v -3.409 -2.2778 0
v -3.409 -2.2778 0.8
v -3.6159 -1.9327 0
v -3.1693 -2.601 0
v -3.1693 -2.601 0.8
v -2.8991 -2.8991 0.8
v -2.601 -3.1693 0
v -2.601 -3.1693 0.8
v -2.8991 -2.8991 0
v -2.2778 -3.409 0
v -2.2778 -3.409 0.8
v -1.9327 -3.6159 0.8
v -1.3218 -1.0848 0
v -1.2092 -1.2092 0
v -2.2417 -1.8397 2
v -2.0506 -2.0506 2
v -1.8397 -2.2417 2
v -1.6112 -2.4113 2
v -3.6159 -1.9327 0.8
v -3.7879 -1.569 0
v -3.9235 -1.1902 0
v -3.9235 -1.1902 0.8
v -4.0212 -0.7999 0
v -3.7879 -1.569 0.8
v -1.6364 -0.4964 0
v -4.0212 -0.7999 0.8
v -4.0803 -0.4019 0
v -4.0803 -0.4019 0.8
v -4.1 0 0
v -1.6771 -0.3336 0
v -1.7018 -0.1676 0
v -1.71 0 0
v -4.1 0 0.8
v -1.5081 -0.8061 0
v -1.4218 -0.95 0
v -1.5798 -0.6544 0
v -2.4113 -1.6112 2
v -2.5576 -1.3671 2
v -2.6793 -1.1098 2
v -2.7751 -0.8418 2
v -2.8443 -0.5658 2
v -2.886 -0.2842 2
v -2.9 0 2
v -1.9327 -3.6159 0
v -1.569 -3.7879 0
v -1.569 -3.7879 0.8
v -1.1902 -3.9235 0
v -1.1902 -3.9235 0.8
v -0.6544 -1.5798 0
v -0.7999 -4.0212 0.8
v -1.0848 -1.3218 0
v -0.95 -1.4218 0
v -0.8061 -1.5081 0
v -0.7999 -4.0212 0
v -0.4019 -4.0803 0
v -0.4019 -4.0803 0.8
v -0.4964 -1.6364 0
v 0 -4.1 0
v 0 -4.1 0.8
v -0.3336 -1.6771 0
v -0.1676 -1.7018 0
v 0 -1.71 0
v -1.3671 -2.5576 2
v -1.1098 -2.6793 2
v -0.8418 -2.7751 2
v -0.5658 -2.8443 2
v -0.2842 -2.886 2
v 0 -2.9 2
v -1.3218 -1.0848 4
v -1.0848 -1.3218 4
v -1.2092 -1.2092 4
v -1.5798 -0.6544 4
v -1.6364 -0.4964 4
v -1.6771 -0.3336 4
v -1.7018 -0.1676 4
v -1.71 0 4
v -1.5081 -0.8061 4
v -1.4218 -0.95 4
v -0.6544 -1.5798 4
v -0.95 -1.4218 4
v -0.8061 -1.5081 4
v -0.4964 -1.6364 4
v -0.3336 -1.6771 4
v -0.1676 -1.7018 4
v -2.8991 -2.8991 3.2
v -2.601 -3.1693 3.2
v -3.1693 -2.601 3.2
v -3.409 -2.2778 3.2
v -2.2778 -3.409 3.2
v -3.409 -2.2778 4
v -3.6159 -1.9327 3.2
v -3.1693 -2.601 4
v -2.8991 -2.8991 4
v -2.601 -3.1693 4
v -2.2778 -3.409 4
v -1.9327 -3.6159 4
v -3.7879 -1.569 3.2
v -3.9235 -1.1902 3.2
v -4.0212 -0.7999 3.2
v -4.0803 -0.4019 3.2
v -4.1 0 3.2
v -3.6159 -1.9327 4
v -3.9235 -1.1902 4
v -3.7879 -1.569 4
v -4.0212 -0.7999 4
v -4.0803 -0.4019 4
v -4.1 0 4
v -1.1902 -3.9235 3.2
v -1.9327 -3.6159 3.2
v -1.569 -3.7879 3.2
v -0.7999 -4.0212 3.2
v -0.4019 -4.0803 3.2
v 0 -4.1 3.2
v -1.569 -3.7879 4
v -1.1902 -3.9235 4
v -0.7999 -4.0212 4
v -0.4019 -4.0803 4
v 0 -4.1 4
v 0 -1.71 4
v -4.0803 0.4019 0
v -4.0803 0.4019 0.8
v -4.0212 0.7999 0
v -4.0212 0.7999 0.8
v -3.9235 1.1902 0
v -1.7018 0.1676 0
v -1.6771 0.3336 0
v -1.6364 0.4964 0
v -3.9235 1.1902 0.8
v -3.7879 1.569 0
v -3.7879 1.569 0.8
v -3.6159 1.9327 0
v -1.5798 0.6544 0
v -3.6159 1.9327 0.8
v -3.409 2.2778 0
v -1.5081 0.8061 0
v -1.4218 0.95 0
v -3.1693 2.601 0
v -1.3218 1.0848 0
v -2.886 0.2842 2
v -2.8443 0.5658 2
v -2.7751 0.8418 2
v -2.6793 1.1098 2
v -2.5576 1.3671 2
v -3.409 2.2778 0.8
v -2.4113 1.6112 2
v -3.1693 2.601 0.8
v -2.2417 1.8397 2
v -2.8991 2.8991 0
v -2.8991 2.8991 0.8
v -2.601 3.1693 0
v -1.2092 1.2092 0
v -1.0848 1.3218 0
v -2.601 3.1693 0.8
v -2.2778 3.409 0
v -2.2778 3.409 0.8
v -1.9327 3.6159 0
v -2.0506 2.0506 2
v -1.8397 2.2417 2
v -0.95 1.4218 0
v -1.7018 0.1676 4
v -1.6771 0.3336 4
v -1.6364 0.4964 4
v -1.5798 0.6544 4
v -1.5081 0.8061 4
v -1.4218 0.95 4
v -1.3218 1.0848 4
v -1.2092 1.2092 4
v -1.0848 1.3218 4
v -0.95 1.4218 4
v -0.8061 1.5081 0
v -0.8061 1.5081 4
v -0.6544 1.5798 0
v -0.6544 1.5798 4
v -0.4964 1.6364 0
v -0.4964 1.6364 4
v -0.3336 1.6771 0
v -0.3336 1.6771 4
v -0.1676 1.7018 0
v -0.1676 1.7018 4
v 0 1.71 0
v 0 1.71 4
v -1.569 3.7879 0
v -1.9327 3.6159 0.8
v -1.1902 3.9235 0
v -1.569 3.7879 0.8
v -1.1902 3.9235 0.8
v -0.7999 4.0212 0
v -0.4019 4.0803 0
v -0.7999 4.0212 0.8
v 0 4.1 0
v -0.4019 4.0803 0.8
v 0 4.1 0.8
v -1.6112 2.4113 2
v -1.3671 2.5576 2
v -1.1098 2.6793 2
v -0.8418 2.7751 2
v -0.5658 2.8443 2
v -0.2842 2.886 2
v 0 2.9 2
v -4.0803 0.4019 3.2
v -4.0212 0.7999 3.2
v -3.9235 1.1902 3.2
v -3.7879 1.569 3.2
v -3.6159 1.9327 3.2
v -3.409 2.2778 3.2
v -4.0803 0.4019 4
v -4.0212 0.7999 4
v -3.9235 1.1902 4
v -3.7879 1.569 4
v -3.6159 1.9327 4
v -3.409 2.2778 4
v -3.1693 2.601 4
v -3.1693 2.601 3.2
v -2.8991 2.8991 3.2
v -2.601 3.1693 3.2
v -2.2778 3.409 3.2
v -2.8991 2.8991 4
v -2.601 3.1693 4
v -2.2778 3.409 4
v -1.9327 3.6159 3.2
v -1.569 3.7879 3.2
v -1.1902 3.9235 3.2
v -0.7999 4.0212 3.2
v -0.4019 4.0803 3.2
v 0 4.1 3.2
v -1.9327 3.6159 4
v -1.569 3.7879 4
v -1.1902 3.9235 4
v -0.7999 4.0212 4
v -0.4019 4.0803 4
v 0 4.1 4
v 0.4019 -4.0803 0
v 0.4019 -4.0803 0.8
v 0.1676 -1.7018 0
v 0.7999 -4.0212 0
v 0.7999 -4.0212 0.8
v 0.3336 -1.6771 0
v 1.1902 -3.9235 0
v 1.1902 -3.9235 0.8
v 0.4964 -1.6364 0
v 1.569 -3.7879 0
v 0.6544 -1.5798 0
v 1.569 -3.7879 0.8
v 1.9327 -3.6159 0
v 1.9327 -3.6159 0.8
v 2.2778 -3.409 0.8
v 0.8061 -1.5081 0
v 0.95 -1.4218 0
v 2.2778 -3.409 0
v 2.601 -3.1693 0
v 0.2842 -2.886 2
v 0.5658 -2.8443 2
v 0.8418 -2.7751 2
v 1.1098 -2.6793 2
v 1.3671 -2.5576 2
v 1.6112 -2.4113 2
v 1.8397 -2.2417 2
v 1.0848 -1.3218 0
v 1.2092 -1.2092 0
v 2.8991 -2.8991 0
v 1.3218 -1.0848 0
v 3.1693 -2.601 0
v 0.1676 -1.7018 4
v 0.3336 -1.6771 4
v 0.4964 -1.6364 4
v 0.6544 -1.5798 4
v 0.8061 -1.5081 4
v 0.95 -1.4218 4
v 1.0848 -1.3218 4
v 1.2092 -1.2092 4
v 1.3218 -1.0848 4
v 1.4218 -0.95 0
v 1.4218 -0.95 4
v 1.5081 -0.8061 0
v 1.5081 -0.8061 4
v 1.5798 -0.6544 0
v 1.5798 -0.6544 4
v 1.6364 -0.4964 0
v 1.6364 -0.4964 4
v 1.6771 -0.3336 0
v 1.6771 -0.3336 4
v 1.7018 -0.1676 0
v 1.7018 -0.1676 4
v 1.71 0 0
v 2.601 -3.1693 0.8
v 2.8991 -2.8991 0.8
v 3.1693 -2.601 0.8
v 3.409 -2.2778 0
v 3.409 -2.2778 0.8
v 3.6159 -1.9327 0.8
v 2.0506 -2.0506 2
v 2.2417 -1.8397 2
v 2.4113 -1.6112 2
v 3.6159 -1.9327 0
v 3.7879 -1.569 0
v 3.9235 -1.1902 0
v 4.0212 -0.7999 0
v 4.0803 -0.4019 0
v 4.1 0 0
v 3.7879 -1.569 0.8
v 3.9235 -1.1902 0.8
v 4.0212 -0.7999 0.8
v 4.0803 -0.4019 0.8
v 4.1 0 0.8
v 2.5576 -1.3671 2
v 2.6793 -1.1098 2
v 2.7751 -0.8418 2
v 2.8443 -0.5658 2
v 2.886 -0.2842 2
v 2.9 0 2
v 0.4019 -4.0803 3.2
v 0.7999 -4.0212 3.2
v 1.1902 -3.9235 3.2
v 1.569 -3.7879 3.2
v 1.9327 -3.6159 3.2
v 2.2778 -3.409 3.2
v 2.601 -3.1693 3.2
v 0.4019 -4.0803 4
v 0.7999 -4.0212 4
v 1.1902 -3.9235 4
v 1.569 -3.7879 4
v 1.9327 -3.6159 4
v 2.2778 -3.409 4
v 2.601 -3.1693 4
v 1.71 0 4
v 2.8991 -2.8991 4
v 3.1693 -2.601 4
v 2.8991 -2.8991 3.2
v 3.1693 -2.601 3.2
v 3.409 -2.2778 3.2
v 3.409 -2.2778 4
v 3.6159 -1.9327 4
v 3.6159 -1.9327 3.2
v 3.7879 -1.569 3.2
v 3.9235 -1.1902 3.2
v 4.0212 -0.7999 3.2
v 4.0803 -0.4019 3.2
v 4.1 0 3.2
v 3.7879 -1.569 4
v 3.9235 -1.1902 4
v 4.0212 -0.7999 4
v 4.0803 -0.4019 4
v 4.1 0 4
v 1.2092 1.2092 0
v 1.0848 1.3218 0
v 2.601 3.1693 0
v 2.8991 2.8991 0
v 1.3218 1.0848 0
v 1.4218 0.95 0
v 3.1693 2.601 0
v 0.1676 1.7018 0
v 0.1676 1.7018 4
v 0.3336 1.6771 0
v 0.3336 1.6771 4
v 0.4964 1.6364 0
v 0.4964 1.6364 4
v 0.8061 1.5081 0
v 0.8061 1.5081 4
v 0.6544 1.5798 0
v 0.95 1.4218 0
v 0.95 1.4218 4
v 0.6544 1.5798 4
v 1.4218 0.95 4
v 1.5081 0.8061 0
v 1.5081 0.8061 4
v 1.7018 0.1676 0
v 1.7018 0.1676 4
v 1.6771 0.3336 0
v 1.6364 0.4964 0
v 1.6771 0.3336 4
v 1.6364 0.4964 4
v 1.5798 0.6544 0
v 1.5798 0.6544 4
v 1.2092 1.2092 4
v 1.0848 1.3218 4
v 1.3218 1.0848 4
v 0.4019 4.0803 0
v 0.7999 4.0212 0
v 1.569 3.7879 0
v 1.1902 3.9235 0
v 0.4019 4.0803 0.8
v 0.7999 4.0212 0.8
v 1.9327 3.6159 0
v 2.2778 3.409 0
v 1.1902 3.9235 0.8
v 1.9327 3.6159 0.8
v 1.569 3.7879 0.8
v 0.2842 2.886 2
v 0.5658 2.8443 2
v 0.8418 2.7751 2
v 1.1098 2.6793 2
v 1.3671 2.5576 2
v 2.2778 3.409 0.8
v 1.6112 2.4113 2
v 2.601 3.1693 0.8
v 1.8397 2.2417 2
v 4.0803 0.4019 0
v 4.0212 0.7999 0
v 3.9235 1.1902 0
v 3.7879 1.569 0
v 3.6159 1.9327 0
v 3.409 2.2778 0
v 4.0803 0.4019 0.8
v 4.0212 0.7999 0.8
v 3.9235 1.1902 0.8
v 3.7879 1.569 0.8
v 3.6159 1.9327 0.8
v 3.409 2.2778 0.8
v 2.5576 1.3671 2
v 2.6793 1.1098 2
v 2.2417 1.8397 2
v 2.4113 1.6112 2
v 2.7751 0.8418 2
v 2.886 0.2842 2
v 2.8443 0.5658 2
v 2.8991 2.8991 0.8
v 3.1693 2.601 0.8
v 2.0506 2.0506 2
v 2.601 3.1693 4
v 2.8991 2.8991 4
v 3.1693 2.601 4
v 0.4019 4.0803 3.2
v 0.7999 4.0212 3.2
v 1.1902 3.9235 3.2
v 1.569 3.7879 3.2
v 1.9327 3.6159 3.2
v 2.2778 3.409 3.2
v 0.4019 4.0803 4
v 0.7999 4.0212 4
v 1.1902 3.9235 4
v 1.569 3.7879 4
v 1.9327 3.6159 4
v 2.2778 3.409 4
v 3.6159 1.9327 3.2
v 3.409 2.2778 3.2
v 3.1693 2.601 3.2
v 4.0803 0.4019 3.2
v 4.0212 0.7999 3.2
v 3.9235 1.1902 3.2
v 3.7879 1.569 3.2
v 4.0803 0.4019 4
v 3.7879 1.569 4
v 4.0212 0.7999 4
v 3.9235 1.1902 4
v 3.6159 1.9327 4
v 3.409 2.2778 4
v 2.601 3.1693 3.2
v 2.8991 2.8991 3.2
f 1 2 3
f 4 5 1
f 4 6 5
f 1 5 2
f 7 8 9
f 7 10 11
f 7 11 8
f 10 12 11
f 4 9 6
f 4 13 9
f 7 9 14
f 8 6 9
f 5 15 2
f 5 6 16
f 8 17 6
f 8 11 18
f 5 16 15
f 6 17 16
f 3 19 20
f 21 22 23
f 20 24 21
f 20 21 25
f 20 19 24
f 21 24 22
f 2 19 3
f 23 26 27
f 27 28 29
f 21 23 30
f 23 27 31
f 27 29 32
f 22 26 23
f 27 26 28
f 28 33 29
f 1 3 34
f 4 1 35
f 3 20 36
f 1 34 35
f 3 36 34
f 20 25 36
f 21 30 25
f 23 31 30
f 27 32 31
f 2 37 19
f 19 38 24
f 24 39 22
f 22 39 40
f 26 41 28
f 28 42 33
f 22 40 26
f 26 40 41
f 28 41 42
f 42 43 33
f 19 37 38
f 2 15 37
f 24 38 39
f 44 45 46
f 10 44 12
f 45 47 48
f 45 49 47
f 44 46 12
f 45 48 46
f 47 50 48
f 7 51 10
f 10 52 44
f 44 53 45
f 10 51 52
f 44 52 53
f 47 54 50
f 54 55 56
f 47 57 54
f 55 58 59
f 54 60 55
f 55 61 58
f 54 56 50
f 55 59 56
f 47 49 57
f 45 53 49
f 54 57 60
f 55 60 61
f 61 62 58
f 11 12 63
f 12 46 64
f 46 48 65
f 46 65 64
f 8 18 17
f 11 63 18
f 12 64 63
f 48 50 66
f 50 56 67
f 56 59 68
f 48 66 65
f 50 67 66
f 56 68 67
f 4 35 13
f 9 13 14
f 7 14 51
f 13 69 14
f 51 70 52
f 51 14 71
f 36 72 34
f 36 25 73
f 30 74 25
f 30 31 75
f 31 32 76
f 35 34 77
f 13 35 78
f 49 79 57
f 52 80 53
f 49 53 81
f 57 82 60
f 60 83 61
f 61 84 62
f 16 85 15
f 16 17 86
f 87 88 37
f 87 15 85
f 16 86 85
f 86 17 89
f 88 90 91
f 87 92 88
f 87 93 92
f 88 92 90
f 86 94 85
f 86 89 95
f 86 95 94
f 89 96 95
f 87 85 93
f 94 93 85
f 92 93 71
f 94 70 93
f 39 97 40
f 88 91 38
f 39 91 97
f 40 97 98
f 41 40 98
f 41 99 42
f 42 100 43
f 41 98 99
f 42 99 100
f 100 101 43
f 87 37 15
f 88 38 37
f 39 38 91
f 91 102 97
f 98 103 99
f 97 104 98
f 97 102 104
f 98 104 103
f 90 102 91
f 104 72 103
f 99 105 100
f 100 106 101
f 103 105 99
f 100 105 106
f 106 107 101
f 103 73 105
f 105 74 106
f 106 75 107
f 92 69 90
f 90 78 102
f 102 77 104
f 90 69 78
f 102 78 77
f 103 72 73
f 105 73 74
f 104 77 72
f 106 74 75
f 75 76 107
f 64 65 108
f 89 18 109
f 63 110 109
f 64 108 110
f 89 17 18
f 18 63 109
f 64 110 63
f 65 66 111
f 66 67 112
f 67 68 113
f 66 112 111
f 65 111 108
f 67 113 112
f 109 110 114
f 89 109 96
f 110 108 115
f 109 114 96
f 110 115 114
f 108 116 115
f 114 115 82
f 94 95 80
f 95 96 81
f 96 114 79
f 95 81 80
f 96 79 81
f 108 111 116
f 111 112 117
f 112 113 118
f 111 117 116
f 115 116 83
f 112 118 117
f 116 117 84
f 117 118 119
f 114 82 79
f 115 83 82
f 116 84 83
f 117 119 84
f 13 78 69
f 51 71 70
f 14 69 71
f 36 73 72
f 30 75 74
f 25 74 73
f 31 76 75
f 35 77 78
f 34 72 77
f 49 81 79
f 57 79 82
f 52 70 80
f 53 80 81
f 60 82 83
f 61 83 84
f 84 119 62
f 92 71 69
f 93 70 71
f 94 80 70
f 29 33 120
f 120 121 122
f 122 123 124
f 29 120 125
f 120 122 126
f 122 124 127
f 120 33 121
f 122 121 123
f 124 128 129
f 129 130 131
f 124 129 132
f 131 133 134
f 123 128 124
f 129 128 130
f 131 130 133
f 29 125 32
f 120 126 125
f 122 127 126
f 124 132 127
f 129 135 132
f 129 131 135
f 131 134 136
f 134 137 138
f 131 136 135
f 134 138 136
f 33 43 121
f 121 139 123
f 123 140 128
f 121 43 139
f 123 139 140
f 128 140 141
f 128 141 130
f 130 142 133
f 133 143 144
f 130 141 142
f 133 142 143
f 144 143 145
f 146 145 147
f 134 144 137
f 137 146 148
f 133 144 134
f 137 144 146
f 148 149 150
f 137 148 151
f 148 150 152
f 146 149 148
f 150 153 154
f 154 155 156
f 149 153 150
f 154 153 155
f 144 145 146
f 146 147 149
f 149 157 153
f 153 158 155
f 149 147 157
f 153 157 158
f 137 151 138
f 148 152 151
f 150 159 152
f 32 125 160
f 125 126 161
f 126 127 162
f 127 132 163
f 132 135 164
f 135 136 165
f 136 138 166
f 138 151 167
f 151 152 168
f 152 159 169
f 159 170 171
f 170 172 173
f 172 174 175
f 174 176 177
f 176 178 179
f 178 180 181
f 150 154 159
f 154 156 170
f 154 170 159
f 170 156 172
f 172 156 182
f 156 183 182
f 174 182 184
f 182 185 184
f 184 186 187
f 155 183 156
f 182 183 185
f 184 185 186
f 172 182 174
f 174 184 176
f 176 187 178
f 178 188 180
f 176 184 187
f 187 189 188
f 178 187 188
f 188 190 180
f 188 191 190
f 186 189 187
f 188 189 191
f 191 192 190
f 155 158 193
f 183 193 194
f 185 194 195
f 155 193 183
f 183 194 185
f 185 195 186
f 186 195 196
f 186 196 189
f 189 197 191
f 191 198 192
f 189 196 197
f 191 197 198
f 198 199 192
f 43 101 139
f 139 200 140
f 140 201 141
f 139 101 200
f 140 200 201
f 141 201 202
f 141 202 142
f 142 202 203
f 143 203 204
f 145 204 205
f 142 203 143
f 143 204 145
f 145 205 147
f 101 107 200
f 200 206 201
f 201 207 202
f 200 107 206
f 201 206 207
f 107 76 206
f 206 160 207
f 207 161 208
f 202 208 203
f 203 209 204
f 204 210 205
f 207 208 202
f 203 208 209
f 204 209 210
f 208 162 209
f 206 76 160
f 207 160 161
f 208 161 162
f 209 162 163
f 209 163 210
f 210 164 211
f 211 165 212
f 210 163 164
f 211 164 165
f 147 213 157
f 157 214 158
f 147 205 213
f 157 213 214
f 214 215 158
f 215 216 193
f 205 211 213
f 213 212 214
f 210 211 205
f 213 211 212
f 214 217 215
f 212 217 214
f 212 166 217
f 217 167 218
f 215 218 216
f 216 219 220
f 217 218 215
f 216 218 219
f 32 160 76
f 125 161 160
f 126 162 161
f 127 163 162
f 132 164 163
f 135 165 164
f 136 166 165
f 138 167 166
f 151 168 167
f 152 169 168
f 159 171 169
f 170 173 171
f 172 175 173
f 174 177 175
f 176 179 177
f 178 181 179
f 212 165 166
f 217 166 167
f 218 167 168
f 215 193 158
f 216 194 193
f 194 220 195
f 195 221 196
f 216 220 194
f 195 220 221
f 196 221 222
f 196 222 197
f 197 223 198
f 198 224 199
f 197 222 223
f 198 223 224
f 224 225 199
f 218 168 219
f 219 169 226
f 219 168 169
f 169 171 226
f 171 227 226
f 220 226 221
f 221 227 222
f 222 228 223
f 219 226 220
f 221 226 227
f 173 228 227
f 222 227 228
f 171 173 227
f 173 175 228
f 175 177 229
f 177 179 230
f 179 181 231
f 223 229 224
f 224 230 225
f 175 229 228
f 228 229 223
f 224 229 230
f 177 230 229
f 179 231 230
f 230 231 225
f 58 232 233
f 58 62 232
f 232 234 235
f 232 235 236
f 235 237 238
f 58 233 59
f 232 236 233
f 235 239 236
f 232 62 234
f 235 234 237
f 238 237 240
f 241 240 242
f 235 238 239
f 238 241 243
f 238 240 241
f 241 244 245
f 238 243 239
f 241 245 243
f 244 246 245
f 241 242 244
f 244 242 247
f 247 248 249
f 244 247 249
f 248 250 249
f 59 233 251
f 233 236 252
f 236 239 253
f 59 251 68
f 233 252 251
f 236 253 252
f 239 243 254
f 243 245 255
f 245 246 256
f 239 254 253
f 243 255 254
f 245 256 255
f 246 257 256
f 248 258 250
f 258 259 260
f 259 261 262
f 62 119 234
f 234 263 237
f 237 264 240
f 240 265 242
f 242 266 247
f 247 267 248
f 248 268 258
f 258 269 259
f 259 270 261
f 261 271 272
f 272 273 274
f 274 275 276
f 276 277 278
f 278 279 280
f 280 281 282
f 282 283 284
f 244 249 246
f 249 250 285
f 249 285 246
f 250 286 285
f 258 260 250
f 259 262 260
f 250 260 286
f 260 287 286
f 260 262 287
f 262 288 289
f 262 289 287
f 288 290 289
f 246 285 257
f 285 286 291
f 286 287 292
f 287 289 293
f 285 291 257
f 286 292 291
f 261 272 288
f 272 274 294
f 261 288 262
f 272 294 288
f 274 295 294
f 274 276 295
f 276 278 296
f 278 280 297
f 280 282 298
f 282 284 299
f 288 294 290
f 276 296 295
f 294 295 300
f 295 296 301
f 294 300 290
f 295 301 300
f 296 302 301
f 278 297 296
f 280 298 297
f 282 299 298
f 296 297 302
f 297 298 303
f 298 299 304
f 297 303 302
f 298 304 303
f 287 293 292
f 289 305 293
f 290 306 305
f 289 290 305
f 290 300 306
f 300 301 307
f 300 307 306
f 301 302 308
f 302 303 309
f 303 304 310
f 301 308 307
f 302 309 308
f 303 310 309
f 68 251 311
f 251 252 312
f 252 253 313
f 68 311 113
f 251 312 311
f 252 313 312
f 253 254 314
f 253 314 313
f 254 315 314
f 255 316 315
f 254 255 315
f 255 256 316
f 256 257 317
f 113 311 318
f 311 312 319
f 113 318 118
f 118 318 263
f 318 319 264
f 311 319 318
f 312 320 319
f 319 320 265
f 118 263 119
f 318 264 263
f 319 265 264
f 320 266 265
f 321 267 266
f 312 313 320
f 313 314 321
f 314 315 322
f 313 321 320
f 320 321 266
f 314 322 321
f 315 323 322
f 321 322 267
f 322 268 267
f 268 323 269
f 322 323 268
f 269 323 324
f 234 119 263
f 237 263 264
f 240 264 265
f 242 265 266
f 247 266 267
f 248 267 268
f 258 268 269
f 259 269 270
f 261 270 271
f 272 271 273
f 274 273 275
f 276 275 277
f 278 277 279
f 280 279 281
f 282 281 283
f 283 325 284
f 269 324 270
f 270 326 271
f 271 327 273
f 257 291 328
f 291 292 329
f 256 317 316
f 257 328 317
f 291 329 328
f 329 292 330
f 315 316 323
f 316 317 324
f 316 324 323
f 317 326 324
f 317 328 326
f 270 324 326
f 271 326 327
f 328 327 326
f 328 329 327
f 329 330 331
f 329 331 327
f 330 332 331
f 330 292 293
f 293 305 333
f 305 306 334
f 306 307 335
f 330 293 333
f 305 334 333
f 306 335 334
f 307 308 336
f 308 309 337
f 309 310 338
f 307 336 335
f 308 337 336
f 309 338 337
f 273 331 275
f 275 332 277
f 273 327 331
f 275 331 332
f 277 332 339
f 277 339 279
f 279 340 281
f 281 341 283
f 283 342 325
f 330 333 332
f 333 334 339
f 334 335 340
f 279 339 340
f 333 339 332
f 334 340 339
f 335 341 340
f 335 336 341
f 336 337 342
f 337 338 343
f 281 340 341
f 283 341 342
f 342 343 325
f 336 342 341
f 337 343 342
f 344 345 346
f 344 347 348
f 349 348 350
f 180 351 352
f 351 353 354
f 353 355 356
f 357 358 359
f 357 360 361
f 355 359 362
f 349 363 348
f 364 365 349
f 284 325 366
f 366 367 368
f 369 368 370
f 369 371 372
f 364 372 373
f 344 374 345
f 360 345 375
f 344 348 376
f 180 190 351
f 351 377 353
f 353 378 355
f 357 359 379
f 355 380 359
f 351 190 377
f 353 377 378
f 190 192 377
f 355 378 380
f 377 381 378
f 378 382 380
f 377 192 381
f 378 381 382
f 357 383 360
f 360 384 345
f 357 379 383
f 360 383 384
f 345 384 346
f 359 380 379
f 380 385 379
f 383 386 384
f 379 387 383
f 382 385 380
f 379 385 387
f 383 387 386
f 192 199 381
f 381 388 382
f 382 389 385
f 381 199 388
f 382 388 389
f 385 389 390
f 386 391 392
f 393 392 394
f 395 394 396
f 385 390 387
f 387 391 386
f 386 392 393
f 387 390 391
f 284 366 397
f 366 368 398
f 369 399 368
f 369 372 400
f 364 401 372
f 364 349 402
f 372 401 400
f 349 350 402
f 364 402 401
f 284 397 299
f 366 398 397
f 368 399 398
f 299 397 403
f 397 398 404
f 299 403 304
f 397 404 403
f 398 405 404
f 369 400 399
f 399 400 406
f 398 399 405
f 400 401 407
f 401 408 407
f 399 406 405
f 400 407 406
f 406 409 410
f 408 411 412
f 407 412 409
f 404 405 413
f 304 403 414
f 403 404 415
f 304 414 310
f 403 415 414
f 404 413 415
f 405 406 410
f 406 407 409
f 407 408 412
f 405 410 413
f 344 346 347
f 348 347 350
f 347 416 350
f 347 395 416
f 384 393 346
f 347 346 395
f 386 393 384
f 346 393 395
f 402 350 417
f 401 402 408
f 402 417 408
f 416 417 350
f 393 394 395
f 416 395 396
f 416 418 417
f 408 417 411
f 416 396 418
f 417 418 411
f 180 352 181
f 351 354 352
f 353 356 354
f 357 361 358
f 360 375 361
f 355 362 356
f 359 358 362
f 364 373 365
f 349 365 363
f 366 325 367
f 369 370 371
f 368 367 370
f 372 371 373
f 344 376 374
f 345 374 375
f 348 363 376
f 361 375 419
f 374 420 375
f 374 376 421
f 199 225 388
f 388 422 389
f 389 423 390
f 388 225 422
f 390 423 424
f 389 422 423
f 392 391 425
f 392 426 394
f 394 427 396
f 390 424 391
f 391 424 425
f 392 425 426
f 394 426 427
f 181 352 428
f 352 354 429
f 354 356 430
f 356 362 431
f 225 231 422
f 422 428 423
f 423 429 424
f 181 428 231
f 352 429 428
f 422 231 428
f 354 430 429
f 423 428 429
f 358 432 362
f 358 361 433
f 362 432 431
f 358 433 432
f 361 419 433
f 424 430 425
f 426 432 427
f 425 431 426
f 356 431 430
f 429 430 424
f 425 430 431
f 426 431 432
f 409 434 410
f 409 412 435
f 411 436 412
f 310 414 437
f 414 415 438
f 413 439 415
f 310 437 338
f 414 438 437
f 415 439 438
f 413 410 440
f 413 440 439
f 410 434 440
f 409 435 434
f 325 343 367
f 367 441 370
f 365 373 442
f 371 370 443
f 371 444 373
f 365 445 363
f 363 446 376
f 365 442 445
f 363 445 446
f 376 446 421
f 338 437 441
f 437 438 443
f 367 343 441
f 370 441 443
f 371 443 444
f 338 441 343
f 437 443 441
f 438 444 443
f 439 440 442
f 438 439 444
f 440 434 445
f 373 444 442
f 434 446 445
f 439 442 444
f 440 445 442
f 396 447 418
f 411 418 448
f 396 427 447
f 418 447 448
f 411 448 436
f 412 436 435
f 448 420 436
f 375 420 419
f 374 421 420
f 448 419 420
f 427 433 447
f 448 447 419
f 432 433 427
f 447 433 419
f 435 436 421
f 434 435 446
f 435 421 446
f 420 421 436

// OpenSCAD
// file: loader_pulley_feed.scad
// O-ring belt pulley on the feed shaft (-X end): groove Ø12 for a 1.5 mm cord. M3 grub.
// Print: flat, no supports (V groove 45 deg).
include <params.scad>
include <lib/lib.scad>
module pulley(dg, x0, y, z) translate([x0, y, z]) rotate([0, 90, 0]) difference() {
    rotate_extrude($fn = 64) polygon([[fit_free(SHAFT_D) / 2 + 0.01, 0], [dg / 2 + 1.2, 0], [dg / 2 + 1.2, 0.8], [dg / 2, 2.0], [dg / 2 + 1.2, 3.2], [dg / 2 + 1.2, 4], [fit_free(SHAFT_D) / 2 + 0.01, 4]]);   // 45 deg V groove
    translate([0, 0, -1]) cylinder(d = fit_press(SHAFT_D), h = 6);
}
module loader_pulley_feed() pulley(PUL_FEED_D, BELT_X - 2, FEED_Y, FEED_Z);
module loader_pulley_feed_print() translate([0, 0, 0]) rotate([0, -90, 0]) translate([-(BELT_X - 2), -FEED_Y, -FEED_Z]) loader_pulley_feed();
loader_pulley_feed_print();
// file: lib/lib.scad
// Shared helpers. Include AFTER params.scad (needs TOL, M3_* etc.).
$fa = 4; $fs = 0.5;

module rrect(size, r) {            // 2D rounded rectangle, centred
    r2 = min(r, min(size[0], size[1]) / 2 - 0.001);
    offset(r = r2) square([size[0] - 2 * r2, size[1] - 2 * r2], center = true);
}
module rbox(size, r, center_xy = true) {   // box with rounded vertical edges
    translate(center_xy ? [0, 0, 0] : [size[0] / 2, size[1] / 2, 0])
        linear_extrude(size[2]) rrect([size[0], size[1]], r);
}
module rbox_at(x0, x1, y0, y1, z0, z1, r = 0.01) {
    translate([(x0 + x1) / 2, (y0 + y1) / 2, z0]) rbox([x1 - x0, y1 - y0, z1 - z0], r);
}
module box_at(x0, x1, y0, y1, z0, z1) { translate([x0, y0, z0]) cube([x1 - x0, y1 - y0, z1 - z0]); }

module ring(ro, ri, h) { difference() { cylinder(r = ro, h = h); translate([0, 0, -1]) cylinder(r = ri, h = h + 2); } }
module ring_sector(ro, ri, h, a0, a1) {
    intersection() {
        ring(ro, ri, h);
        linear_extrude(h) polygon(concat([[0, 0]], [for (a = [a0 : (a1 - a0) / 24 : a1]) 2 * ro * [cos(a), sin(a)]]));
    }
}
// teardrop hole along an axis lying horizontal (axis = Y after rotation), printable w/o support
module teardrop2d(d) { union() { circle(d = d); rotate(45) square(d / 2); } }
// vertical heat-set insert hole, opening at z=0 going +z (depth l)
module insert_hole(l = M3_INSERT_L) { translate([0, 0, -EPS]) cylinder(d = M3_INSERT_D, h = l + EPS); }
module m3_clear(l) { translate([0, 0, -EPS]) cylinder(d = M3_CLEAR, h = l + 2 * EPS); }
module m3_csk(l) {  // countersunk clearance from z=0 upward, head at z=0 side
    translate([0, 0, -EPS]) { cylinder(d = M3_CLEAR, h = l + 2 * EPS); cylinder(d1 = 6.4, d2 = M3_CLEAR, h = 1.7); }
}
module card2d() { rrect([CARD_L, CARD_W], CARD_R); }
module card_at(cy, z) { translate([0, cy, z]) linear_extrude(CARD_T) card2d(); }

// ---- gears ----
function _inv(a) = tan(a) - a * PI_ / 180;           // involute function, a in deg
function _invpt(rb, r, ang0, s) = let(al = acos(rb / r), th = ang0 - s * (_inv(al) * 180 / PI_)) [r * cos(th), r * sin(th)];
module involute_gear2d(m, z, pa = 20, clearance = 0.05) {
    rp = m * z / 2; rb = rp * cos(pa); ra = rp + m - clearance; rf = rp - 1.25 * m;
    half = 90 / z + _inv(pa) * 180 / PI_;            // tooth half-angle at base (deg)
    n = 8;
    rs = [for (i = [0 : n]) max(rb, rf) + (ra - max(rb, rf)) * i / n];
    union() {
        circle(r = rf, $fn = z * 4);
        for (k = [0 : z - 1]) rotate(k * 360 / z) polygon(concat(
            [[rf * cos(-half), rf * sin(-half)]],
            [for (r = rs) let(p = _invpt(rb, r, half, 1)) [p[0], -p[1]]],
            [for (i = [n : -1 : 0]) _invpt(rb, rs[i], half, 1)],
            [[rf * cos(half), rf * sin(half)]]));
    }
}
// straight gear rack (2D in XY: teeth along +x, pointing -y, pitch line at y=0)
module gear_rack2d(m, len, back = 3) {
    p = PI_ * m; ad = m; de = 1.25 * m; t = tan(20);
    n = ceil(len / p) + 1;
    intersection() {
        union() {
            translate([0, de]) square([len, back]);
            for (i = [0 : n]) if (i * p - p / 4 - (p / 4 + de * t) >= 0 && i * p + de * t <= len) translate([i * p - p / 4, 0]) polygon([
                [-(p / 4 + de * t), de + 0.01], [p / 4 + de * t + 0.01, de + 0.01],
                [p / 4 - ad * t, -ad], [-(p / 4 - ad * t), -ad] ]);
        }
        translate([0, -ad - 1]) square([len, ad + de + back + 2]);
    }
}
// GT2 belt-tooth profile ring (teeth outward), 2D
module gt2_ring2d(n, r_land, ri) {
    union() {
        difference() { circle(r = r_land + 0.01, $fn = n * 2); circle(r = ri, $fn = n * 2); }
        for (k = [0 : n - 1]) rotate(k * 360 / n)
            translate([r_land, 0]) hull() { translate([-0.2, 0]) square([0.2, 1.0], center = true); translate([0.25, 0]) circle(r = 0.5, $fn = 12); }
    }
}
// main file
// O-ring belt pulley on the pinch shaft (-X end): groove Ø5 (pinch surface speed 1.03 x feed).
// Print: flat, no supports.
include <params.scad>
include <lib/lib.scad>
use <loader_pulley_feed.scad>
module loader_pulley_pinch() pulley(PUL_PINCH_D, BELT_X - 2, PINCH_Y, PINCH_Z);
module loader_pulley_pinch_print() rotate([0, -90, 0]) translate([-(BELT_X - 2), -PINCH_Y, -PINCH_Z]) loader_pulley_pinch();
loader_pulley_pinch_print();
